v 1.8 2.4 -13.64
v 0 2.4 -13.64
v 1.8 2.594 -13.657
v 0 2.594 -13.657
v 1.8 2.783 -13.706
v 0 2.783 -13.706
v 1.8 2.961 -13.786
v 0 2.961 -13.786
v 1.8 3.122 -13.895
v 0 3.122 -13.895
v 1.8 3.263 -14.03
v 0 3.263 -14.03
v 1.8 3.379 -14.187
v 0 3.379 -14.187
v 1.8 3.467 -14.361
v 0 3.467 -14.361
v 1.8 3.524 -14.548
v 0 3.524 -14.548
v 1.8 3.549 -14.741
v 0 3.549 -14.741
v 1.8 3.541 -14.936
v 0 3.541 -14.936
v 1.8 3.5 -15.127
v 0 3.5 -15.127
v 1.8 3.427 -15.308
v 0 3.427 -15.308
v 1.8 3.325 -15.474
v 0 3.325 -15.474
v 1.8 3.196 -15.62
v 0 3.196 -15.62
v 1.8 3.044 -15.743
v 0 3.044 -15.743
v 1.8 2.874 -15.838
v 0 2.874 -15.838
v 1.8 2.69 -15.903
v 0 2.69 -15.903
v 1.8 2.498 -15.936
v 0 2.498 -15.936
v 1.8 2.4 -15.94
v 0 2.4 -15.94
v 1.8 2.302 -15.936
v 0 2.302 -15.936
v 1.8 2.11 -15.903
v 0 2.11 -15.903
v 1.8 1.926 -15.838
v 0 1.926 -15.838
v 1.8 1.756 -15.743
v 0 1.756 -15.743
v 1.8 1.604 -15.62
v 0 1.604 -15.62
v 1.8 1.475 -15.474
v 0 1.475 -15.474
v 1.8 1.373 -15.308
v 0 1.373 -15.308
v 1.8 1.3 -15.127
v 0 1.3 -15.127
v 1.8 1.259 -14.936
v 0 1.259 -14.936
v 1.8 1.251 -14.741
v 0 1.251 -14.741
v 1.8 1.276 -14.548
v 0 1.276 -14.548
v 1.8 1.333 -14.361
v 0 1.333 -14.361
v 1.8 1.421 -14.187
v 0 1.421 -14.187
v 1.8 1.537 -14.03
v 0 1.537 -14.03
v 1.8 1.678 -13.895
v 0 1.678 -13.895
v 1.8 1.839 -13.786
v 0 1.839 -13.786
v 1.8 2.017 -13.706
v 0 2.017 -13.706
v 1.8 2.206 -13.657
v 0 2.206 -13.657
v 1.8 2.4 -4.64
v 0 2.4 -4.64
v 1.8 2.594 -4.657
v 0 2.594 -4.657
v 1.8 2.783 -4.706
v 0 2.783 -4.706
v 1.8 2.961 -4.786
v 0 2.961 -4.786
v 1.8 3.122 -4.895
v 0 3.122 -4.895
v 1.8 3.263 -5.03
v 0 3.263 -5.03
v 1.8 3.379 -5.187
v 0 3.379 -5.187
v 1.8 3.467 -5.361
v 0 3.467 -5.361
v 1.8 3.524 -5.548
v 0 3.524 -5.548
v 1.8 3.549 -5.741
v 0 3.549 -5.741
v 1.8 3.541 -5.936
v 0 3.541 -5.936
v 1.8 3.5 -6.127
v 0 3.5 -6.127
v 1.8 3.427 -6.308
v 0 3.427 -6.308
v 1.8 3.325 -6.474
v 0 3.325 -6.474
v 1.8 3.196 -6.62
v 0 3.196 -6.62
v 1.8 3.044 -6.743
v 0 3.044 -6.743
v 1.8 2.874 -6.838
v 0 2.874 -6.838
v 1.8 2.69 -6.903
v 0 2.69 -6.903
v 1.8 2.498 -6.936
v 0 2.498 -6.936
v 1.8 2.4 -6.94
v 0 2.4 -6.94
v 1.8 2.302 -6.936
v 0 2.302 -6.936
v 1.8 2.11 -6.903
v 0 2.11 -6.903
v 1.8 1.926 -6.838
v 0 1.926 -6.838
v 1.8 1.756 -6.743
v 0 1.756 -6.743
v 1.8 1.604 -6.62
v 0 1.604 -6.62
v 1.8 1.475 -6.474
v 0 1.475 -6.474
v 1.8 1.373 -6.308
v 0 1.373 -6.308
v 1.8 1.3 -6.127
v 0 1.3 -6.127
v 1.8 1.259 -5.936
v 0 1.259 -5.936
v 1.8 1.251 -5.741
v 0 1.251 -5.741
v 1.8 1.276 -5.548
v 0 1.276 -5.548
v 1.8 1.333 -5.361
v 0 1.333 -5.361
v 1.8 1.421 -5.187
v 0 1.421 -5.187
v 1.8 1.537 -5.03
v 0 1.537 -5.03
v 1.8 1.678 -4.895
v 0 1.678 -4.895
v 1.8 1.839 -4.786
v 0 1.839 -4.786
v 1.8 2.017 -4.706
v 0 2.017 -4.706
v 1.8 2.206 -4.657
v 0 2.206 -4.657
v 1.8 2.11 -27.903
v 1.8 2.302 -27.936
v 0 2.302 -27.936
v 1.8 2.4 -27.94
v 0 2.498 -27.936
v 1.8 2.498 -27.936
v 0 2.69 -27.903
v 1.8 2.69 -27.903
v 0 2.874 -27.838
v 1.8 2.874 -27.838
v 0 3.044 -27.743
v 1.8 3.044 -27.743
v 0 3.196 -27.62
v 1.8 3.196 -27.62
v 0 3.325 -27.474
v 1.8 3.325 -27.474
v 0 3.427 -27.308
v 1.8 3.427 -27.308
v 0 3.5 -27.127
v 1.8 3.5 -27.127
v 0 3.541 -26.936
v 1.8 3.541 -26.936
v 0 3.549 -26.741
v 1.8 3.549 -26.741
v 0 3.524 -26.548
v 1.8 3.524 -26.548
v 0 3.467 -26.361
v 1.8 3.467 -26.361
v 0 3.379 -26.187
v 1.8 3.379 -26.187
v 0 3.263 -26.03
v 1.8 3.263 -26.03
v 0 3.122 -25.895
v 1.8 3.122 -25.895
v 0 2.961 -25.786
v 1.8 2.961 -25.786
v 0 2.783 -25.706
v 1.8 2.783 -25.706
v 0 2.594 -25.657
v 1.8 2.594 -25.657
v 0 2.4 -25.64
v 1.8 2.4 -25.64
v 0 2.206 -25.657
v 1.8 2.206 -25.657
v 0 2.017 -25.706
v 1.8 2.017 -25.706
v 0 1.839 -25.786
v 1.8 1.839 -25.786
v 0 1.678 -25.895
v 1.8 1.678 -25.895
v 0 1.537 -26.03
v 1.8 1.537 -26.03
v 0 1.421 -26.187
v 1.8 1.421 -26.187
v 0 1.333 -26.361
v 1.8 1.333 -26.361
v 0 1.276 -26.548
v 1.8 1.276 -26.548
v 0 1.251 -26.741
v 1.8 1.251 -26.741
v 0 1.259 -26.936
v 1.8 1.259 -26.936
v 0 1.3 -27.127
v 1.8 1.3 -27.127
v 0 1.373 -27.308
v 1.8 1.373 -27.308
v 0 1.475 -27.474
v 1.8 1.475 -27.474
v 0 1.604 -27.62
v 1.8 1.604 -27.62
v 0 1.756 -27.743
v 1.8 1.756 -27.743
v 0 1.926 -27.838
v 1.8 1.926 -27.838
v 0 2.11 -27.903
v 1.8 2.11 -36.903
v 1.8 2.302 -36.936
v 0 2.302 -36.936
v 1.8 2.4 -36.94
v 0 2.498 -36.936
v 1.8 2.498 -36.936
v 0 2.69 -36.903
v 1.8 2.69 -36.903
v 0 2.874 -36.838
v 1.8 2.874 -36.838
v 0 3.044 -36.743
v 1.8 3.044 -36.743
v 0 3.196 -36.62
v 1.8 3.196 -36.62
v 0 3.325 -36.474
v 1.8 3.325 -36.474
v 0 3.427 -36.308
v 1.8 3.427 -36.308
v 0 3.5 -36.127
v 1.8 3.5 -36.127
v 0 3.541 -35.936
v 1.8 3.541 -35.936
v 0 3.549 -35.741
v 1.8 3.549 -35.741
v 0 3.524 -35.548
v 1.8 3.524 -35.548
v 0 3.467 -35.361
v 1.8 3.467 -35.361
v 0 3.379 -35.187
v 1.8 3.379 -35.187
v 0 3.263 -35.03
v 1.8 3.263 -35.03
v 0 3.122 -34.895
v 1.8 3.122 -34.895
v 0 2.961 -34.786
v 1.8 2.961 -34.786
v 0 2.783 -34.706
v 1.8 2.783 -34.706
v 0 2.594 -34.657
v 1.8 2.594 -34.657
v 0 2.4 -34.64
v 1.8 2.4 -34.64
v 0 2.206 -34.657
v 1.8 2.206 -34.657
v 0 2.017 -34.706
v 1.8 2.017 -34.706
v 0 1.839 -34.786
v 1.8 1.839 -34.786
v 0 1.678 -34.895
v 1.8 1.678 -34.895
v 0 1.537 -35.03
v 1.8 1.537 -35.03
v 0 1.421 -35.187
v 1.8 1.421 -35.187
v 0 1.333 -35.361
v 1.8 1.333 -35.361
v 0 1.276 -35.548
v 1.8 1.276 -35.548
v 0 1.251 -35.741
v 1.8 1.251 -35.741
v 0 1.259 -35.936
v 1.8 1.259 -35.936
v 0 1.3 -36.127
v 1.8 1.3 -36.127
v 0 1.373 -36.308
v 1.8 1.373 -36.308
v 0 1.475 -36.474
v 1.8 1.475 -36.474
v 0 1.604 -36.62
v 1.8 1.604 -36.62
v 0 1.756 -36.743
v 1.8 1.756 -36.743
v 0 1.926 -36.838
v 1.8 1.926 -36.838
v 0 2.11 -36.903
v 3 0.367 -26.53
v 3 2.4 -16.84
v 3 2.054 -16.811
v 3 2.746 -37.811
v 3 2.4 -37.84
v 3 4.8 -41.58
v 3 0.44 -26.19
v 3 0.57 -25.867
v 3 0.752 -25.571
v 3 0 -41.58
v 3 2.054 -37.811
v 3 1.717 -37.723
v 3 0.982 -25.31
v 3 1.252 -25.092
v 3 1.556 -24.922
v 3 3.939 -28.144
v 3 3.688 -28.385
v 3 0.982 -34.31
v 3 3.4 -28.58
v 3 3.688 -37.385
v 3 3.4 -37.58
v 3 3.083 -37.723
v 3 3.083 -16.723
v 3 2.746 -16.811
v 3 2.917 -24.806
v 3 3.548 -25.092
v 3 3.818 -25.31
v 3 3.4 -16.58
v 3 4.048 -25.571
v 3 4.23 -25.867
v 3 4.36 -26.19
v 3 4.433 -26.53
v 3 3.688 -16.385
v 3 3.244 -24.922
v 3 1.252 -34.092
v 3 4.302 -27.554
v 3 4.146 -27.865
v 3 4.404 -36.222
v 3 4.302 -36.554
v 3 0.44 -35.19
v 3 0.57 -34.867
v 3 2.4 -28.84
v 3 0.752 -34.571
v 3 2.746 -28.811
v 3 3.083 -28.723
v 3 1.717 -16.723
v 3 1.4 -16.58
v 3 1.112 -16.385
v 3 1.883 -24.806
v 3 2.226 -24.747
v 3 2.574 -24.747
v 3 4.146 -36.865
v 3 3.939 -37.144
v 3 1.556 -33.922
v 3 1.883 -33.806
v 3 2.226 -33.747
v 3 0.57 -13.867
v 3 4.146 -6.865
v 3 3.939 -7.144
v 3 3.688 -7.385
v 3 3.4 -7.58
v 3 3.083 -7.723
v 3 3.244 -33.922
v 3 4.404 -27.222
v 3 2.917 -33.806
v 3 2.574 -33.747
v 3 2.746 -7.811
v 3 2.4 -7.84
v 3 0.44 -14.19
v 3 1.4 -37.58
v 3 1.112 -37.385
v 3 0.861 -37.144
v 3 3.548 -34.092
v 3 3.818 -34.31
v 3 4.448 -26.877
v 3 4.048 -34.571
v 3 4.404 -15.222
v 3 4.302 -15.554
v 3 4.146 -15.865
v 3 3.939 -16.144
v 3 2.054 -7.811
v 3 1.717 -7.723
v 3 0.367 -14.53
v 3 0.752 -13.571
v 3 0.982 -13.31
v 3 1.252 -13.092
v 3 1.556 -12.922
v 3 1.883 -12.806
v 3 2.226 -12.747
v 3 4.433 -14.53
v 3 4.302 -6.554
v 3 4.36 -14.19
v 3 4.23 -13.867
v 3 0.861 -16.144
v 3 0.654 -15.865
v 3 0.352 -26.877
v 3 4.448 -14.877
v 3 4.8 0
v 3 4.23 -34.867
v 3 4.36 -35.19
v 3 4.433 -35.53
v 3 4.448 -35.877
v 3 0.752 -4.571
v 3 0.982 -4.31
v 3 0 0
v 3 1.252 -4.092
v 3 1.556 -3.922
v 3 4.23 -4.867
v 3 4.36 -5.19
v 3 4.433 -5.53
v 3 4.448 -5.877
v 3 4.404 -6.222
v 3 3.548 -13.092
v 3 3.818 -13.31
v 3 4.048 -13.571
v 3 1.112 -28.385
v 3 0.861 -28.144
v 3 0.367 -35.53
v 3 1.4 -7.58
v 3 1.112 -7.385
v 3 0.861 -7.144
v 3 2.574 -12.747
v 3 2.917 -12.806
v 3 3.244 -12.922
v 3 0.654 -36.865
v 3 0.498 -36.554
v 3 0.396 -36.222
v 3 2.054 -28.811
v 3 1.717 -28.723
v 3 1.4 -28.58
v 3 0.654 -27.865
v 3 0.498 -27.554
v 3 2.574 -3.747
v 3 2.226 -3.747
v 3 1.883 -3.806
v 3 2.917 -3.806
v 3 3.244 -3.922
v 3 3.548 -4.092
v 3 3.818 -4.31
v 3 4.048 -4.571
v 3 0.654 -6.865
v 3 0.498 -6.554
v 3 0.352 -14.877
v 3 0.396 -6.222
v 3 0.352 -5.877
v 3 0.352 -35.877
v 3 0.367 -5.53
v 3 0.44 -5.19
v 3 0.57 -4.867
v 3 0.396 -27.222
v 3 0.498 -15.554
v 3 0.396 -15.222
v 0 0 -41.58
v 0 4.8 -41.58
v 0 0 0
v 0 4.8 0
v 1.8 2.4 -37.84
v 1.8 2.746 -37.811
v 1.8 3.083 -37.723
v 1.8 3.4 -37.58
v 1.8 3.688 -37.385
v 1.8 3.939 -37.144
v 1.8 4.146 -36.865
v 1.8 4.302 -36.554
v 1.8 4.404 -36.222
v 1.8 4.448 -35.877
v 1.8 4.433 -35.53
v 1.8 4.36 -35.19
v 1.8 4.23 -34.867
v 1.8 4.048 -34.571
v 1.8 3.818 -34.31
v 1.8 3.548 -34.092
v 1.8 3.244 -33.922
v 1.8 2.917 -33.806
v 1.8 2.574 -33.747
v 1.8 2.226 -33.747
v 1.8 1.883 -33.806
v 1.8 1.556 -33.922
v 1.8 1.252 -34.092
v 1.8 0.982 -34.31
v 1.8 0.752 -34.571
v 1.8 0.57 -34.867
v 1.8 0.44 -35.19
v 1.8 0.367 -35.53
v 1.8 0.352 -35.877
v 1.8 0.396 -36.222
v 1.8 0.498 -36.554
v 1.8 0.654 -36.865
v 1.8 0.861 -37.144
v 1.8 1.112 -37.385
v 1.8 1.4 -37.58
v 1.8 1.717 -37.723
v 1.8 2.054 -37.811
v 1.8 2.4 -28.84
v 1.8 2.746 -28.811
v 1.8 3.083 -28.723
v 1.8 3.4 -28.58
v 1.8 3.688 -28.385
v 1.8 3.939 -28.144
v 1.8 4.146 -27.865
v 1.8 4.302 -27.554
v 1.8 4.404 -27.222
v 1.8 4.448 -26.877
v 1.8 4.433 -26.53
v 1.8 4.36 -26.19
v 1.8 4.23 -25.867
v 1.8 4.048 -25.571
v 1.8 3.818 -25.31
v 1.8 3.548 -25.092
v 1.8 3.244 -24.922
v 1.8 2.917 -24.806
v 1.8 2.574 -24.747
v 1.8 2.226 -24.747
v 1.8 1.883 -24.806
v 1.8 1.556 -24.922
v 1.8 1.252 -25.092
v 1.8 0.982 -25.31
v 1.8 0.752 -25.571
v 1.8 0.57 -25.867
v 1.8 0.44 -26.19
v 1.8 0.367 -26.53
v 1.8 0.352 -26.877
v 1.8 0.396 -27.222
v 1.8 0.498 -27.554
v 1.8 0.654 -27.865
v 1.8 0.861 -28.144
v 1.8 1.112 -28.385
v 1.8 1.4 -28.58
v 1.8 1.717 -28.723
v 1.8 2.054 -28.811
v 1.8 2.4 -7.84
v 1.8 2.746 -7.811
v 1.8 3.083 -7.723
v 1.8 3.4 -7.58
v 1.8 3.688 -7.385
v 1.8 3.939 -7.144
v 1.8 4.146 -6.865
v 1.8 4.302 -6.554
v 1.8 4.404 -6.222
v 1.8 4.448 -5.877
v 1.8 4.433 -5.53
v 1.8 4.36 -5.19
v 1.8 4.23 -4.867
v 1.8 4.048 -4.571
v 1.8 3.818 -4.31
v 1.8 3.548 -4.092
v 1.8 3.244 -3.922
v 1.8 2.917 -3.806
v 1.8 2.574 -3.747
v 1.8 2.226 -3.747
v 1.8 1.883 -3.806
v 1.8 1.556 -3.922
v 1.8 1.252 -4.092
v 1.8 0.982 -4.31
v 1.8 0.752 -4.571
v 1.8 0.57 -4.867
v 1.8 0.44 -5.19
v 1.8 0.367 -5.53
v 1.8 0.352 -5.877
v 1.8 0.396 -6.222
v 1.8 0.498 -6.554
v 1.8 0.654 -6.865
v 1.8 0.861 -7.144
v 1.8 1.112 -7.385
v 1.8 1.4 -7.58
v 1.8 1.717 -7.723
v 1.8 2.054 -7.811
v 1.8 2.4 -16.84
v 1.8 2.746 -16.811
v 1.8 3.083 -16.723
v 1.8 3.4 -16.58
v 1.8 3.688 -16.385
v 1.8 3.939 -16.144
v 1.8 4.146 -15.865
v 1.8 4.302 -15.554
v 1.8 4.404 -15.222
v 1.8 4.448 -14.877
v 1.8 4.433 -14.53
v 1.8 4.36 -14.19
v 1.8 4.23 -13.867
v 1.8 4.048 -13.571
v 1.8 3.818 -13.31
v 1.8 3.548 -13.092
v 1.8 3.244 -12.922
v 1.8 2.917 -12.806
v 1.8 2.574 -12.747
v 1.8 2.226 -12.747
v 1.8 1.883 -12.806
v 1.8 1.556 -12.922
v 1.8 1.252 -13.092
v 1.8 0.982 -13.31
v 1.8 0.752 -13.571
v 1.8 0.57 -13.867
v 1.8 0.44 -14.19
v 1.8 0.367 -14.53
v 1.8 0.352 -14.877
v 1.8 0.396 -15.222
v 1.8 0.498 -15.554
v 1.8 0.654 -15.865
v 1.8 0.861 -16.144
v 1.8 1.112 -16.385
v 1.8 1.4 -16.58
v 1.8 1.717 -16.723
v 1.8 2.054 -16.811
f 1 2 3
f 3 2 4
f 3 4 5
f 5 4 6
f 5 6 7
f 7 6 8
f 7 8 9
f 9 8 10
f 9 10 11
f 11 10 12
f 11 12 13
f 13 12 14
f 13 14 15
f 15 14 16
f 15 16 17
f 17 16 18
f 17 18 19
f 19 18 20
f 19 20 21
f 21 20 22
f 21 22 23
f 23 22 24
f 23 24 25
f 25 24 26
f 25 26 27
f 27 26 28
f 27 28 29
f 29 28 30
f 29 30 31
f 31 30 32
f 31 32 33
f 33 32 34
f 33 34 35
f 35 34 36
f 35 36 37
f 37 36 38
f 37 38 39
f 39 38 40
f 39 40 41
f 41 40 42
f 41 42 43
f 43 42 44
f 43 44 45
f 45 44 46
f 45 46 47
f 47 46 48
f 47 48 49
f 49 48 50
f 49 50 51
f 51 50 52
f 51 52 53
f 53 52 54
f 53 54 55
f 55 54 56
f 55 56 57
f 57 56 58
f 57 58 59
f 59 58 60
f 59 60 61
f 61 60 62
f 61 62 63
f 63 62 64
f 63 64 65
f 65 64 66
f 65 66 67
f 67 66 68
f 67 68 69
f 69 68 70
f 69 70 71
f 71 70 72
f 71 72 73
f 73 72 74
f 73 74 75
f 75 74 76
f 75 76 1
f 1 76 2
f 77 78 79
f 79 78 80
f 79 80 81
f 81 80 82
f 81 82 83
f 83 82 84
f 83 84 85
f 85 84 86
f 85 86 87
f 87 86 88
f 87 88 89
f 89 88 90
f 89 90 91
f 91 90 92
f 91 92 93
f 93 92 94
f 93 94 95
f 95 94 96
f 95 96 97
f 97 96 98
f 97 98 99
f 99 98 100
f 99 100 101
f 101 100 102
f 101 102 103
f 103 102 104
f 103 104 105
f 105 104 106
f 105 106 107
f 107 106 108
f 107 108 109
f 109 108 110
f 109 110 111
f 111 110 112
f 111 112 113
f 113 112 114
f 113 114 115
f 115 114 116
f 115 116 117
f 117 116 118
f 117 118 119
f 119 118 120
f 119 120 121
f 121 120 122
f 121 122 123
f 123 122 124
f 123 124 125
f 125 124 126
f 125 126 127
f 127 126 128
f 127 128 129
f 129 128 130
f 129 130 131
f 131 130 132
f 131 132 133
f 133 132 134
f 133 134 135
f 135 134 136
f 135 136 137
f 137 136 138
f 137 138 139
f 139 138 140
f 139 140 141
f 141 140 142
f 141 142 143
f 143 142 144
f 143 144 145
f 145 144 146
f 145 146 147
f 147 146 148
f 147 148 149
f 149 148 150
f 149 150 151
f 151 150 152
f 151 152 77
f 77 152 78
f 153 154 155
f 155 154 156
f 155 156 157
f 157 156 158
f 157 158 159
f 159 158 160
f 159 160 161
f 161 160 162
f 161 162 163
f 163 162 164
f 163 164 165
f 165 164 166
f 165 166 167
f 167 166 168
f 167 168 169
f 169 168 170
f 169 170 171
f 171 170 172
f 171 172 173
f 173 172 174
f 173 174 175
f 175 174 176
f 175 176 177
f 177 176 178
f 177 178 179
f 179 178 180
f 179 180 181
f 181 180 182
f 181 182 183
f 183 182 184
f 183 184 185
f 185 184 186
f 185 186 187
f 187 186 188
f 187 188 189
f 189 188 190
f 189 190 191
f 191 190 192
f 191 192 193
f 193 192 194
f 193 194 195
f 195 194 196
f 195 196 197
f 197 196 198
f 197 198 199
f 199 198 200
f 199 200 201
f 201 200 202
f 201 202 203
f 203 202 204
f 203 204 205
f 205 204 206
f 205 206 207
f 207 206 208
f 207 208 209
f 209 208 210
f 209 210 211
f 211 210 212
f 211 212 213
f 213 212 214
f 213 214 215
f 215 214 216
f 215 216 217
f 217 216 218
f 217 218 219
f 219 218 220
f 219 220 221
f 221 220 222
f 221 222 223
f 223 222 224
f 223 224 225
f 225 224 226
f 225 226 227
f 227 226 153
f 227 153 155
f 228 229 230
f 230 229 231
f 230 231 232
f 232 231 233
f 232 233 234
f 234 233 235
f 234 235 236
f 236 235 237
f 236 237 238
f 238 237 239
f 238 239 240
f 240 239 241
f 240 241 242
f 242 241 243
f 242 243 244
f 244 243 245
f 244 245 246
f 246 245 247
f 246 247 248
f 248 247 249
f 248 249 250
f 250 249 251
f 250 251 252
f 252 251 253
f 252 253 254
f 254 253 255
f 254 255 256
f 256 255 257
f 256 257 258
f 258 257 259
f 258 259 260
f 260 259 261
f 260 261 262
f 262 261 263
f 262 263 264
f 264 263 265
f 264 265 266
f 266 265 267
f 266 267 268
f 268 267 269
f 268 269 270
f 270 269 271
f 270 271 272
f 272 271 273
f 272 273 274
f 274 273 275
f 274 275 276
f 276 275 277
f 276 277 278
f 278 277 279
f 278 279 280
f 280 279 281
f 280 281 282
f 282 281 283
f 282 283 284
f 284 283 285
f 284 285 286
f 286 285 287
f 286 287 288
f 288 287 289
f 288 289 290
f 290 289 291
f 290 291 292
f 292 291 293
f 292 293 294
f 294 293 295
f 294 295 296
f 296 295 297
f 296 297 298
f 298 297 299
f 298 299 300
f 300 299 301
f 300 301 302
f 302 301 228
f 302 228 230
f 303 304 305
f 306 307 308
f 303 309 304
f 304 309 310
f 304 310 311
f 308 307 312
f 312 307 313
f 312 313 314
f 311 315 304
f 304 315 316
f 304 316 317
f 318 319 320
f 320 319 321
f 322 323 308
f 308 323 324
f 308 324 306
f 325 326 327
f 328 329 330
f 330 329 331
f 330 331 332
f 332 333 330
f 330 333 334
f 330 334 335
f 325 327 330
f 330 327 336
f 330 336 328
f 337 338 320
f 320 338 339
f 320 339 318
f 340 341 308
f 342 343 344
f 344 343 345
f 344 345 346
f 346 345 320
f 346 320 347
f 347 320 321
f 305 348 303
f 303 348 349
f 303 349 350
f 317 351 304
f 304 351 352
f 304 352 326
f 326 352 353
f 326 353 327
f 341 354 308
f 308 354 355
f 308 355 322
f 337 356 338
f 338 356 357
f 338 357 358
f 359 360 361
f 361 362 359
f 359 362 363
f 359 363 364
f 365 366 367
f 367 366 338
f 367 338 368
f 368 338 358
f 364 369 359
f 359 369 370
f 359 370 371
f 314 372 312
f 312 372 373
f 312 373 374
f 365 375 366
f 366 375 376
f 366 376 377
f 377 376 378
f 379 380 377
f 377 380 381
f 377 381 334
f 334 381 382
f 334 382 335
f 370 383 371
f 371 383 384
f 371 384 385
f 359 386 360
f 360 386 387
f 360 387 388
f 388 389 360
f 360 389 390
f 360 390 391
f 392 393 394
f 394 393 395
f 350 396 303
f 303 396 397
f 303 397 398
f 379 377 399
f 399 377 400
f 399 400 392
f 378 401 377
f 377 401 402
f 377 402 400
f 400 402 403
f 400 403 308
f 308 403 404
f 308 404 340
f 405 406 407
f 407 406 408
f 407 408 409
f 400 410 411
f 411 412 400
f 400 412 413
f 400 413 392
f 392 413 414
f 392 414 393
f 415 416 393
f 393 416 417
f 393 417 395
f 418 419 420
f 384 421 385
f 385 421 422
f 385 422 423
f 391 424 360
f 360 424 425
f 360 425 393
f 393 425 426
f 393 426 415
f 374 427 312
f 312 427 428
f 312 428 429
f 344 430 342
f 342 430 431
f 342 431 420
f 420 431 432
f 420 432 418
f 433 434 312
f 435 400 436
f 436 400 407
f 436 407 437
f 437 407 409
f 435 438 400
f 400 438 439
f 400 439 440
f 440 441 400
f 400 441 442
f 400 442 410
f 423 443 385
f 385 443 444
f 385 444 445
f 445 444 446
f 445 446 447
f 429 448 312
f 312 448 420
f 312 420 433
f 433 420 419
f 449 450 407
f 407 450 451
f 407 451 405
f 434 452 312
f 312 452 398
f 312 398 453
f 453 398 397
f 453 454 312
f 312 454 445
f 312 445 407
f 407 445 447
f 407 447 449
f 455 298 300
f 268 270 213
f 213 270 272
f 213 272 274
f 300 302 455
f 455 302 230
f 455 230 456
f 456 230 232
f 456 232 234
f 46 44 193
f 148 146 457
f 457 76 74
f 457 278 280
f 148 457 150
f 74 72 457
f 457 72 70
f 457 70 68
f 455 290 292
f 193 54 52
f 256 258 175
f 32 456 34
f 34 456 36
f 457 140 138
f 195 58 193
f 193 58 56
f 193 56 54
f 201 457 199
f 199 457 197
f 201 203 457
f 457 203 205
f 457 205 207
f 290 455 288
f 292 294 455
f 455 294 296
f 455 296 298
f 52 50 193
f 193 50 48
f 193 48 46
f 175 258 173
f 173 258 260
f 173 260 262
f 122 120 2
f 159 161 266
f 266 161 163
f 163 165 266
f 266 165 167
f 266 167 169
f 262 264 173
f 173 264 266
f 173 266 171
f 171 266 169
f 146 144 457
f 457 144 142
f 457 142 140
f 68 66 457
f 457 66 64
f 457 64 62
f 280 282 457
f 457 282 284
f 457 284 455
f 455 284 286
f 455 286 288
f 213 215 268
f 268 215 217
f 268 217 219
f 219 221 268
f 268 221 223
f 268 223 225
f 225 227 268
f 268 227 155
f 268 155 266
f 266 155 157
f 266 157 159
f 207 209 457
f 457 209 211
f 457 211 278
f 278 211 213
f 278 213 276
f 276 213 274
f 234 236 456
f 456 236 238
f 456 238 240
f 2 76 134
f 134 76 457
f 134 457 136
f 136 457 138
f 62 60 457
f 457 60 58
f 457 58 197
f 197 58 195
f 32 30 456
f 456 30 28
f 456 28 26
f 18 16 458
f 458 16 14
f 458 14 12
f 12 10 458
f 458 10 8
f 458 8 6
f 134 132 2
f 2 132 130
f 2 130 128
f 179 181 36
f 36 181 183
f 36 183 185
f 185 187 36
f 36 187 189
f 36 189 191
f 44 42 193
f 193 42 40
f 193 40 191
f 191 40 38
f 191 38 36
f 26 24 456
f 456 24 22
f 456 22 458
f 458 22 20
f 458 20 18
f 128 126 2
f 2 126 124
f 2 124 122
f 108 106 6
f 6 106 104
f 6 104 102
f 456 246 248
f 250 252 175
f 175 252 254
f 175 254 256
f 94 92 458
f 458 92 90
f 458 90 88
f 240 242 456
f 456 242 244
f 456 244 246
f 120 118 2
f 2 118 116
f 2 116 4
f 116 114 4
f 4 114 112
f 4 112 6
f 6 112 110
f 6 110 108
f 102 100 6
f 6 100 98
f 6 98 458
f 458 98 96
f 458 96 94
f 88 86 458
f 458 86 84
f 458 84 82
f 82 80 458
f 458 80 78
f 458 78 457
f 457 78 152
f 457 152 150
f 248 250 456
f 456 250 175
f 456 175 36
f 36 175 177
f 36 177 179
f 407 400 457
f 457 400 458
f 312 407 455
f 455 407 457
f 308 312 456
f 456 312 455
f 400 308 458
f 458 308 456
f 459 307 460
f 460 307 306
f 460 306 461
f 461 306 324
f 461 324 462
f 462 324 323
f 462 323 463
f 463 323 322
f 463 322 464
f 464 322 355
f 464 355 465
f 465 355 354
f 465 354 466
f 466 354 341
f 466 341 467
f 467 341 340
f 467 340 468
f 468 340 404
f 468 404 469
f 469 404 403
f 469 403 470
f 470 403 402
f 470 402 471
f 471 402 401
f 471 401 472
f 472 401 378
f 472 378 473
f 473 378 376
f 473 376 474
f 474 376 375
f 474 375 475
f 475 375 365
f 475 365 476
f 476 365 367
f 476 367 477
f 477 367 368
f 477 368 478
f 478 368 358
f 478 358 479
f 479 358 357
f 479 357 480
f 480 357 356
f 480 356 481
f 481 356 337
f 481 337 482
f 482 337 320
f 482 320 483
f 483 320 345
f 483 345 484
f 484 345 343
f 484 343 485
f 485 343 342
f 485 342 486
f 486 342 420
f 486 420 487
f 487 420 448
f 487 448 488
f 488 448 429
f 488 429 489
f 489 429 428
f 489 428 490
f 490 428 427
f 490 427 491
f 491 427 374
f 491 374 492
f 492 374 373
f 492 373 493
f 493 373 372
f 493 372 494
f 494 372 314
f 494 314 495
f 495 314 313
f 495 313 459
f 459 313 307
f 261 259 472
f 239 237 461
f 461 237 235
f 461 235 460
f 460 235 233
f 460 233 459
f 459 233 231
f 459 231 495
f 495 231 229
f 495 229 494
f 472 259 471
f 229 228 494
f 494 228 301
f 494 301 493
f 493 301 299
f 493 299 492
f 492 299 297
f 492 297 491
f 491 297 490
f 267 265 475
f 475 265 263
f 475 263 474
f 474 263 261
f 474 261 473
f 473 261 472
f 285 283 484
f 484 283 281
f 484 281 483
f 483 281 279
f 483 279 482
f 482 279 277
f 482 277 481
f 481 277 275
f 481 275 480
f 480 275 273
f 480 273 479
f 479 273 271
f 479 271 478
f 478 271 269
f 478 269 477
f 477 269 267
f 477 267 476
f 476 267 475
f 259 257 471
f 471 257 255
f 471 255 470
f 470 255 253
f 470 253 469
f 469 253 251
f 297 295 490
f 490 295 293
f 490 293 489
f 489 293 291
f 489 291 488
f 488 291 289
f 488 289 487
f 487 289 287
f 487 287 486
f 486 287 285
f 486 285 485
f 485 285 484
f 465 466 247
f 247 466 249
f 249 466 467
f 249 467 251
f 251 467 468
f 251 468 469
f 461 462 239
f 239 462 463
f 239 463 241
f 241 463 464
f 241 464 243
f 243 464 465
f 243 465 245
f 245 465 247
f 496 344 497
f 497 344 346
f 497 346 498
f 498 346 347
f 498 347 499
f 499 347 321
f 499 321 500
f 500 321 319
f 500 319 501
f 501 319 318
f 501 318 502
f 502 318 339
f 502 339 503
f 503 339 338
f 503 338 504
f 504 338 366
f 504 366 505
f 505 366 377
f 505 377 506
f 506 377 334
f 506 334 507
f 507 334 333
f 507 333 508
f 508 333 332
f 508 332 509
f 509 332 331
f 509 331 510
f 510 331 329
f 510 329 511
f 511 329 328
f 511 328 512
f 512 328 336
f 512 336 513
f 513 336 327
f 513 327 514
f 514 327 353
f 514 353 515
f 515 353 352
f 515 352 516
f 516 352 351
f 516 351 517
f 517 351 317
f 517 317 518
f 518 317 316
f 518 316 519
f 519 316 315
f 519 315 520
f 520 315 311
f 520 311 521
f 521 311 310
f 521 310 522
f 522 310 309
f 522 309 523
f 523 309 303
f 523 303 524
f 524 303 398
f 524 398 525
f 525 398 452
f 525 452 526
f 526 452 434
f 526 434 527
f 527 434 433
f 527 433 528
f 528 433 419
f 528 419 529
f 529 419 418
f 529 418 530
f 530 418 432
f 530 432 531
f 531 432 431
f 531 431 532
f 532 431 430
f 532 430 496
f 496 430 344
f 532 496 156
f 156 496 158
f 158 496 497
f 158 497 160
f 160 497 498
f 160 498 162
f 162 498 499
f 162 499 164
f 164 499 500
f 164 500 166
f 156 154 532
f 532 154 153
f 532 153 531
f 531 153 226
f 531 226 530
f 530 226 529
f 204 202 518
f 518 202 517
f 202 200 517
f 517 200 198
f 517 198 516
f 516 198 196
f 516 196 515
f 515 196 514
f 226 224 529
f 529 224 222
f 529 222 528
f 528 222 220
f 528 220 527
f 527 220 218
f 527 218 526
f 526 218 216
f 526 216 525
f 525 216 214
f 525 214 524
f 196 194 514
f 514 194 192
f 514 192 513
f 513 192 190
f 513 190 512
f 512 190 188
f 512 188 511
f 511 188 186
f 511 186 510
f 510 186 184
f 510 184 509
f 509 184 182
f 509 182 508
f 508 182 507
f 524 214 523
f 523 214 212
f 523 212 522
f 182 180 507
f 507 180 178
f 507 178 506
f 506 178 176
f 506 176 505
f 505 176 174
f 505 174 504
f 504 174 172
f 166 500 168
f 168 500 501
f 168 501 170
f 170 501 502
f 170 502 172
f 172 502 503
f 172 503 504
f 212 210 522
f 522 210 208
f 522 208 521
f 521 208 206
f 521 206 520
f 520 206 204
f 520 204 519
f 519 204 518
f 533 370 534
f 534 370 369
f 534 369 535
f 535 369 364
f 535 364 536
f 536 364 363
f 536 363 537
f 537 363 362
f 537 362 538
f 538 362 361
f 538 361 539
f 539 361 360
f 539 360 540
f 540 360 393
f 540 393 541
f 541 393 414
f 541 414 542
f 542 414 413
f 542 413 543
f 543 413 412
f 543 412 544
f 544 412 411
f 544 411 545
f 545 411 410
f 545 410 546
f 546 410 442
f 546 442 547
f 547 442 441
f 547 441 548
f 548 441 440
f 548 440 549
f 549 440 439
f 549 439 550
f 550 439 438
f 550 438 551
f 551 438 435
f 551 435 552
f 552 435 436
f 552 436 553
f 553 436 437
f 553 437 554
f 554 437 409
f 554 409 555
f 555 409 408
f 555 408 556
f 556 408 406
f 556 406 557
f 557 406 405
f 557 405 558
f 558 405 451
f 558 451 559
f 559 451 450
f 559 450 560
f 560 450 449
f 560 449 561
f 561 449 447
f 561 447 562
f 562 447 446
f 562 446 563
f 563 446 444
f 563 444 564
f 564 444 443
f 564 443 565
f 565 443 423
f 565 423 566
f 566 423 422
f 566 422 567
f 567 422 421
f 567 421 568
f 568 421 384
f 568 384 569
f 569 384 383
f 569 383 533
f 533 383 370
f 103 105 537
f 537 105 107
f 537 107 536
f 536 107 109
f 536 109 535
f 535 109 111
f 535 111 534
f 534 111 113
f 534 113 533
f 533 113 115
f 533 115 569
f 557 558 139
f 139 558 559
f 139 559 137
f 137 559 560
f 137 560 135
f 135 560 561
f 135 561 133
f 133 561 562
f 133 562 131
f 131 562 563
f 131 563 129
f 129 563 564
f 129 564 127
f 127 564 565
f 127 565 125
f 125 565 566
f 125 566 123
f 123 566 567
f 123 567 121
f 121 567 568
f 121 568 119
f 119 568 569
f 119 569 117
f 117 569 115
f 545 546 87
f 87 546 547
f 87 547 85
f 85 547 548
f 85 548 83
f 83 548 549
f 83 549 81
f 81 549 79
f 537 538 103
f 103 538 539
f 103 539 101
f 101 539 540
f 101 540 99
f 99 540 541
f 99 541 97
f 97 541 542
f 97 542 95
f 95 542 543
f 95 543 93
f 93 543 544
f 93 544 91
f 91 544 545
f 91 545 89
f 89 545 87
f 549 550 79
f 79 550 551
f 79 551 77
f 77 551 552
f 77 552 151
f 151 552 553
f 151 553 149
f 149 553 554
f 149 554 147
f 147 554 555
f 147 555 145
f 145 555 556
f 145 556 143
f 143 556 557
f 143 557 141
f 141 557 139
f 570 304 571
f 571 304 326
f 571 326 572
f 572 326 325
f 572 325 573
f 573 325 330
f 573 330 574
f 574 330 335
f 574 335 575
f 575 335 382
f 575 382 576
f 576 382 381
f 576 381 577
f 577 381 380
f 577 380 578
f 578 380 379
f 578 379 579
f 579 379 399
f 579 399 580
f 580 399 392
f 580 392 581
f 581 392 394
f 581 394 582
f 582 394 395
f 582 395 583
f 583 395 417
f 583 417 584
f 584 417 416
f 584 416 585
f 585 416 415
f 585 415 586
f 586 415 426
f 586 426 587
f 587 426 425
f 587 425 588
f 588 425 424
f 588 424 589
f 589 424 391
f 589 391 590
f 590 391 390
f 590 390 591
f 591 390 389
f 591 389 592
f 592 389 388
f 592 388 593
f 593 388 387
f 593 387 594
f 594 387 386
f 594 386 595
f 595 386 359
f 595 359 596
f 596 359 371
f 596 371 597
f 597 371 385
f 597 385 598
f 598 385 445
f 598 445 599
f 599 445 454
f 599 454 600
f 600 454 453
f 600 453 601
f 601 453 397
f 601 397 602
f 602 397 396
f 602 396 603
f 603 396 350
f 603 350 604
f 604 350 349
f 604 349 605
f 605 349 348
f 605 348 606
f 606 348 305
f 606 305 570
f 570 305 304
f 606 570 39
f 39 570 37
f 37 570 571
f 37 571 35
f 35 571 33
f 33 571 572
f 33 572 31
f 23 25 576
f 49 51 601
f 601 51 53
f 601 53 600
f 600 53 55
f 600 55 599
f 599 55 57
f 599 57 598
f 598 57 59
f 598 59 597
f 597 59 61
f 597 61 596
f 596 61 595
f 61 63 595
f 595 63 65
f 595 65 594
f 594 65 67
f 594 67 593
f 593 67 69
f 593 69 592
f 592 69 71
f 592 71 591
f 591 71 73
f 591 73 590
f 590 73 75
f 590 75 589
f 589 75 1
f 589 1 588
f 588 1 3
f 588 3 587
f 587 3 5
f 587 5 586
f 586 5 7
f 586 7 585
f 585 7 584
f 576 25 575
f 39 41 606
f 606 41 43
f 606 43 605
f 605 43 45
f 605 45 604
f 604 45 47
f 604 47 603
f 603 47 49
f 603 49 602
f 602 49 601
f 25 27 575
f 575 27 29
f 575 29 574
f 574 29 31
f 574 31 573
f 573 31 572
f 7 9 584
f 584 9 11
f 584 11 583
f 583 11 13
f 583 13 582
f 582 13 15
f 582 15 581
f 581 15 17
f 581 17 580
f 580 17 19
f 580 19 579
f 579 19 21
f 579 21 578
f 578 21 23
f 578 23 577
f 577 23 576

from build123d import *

# Parameters (mm, degrees)
SKETCH_1_W          = 41.58
SKETCH_1_H          = 4.8
SKETCH_1_R          = 1.15
EXTRUDE_1_DEPTH     = 3
SKETCH_2_R          = 2.05
CUT_EXTRUDE_1_DEPTH = 1.2


with BuildPart() as part:
    # 草图1 → 凸台-拉伸1 (new body)
    with BuildSketch(Plane(origin=(0, 0, 0), x_dir=(0, 0, -1), z_dir=(1, 0, 0))):
        with Locations((20.79, 2.4)):
            Rectangle(SKETCH_1_W, SKETCH_1_H)
        with Locations((14.79, 2.4)):
            Circle(SKETCH_1_R, mode=Mode.SUBTRACT)
        with Locations((5.79, 2.4)):
            Circle(SKETCH_1_R, mode=Mode.SUBTRACT)
        with Locations(Location((26.79, 2.4, 0), (0, 0, 180))):
            Circle(SKETCH_1_R, mode=Mode.SUBTRACT)
        with Locations(Location((35.79, 2.4, 0), (0, 0, 180))):
            Circle(SKETCH_1_R, mode=Mode.SUBTRACT)
    extrude(amount=EXTRUDE_1_DEPTH)

    # 草图2 → 切除-拉伸1 (cut)
    with BuildSketch(Plane(origin=(3, 0, 0), x_dir=(0, 0, -1), z_dir=(1, 0, 0))):
        with Locations((5.79, 2.4)):
            Circle(SKETCH_2_R)
        with Locations((14.79, 2.4)):
            Circle(SKETCH_2_R)
        with Locations((26.79, 2.4)):
            Circle(SKETCH_2_R)
        with Locations((35.79, 2.4)):
            Circle(SKETCH_2_R)
    extrude(amount=-CUT_EXTRUDE_1_DEPTH, mode=Mode.SUBTRACT)


solid = part.part
